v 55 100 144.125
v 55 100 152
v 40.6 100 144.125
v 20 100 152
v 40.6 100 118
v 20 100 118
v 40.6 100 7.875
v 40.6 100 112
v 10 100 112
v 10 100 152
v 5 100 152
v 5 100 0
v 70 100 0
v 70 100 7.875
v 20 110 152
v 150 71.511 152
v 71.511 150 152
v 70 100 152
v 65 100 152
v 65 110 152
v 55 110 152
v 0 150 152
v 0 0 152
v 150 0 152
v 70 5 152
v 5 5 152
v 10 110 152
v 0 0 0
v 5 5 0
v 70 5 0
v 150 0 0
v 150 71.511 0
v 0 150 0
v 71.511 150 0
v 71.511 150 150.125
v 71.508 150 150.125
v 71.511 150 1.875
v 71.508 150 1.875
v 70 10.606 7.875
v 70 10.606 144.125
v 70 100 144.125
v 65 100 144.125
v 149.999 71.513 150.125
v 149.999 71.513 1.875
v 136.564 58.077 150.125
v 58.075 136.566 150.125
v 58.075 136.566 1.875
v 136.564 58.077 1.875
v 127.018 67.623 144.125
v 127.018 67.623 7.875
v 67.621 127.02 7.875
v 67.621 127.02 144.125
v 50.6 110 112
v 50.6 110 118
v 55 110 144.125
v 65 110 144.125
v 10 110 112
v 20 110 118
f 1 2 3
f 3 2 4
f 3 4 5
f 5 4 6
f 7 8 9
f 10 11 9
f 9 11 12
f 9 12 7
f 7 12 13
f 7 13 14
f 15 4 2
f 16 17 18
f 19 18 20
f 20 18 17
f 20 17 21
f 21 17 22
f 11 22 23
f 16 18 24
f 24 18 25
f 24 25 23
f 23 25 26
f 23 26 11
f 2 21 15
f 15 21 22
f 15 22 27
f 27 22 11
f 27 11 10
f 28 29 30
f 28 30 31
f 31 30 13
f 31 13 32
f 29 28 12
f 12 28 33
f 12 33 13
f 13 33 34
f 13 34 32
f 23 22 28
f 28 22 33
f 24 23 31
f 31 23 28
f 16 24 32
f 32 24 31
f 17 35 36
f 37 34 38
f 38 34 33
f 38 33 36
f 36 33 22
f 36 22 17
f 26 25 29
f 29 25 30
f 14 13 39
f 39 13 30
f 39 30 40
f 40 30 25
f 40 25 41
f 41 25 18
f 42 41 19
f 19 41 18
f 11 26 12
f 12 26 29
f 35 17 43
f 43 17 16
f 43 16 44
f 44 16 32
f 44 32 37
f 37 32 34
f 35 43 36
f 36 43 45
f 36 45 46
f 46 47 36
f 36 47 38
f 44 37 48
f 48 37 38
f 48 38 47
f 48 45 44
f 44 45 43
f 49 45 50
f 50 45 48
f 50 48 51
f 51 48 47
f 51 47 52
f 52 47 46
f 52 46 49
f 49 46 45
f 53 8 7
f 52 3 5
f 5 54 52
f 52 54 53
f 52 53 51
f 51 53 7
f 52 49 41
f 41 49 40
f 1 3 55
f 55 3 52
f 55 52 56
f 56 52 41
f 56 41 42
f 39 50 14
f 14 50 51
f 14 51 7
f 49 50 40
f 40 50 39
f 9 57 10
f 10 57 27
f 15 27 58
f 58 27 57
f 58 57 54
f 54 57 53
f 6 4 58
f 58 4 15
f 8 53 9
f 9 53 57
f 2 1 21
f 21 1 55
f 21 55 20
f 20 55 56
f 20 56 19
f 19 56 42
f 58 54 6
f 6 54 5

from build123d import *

# Parameters (mm, degrees)
SKETCH1_W           = 150
SKETCH1_H           = 150
SKETCH1_W_2         = 65
SKETCH1_H_2         = 95
BOSS_EXTRUDE2_DEPTH = 152
CHAMFER1_SIZE       = 78.48885271
SKETCH4_W           = 148.25
SKETCH4_H           = 111
CUT_EXTRUDE5_DEPTH  = 19
SKETCH5_W           = 136.25
SKETCH5_H           = 84
CUT_EXTRUDE6_DEPTH  = 81
SKETCH6_W           = 10
SKETCH6_H           = 10
CUT_EXTRUDE7_DEPTH  = 40
SKETCH7_W           = 10
SKETCH7_H           = 10
CUT_EXTRUDE8_DEPTH  = 40
SKETCH10_W          = 40
SKETCH10_H          = 6
CUT_EXTRUDE10_DEPTH = 10


with BuildPart() as part:
    # Sketch1 → Boss-Extrude2 (new body)
    with BuildSketch(Plane.XY):
        with Locations((75, 75)):
            Rectangle(SKETCH1_W, SKETCH1_H)
        with Locations((37.5, 52.5)):
            Rectangle(SKETCH1_W_2, SKETCH1_H_2, mode=Mode.SUBTRACT)
    extrude(amount=BOSS_EXTRUDE2_DEPTH)

    # Chamfer1
    chamfer1_edges = [part.edges().sort_by_distance(p)[0] for p in [
        (150, 150, 76),
    ]]
    chamfer(chamfer1_edges, length=CHAMFER1_SIZE)

    # Sketch4 → Cut-Extrude5 (cut)
    with BuildSketch(Plane(origin=(110.755573645, 110.755573645, 0), x_dir=(0, 0, -1), z_dir=(0.7071067811865489, 0.7071067811865461, 0))):
        with Locations((-76, 0.001948307)):
            Rectangle(SKETCH4_W, SKETCH4_H)
    extrude(amount=-CUT_EXTRUDE5_DEPTH, mode=Mode.SUBTRACT)

    # Sketch5 → Cut-Extrude6 (cut)
    with BuildSketch(Plane(origin=(97.320544802, 97.320544802, 0), x_dir=(0, 0, -1), z_dir=(0.707106781186549, 0.707106781186546, 0))):
        with Locations((-76, 0.001948307)):
            Rectangle(SKETCH5_W, SKETCH5_H)
    extrude(amount=-CUT_EXTRUDE6_DEPTH, mode=Mode.SUBTRACT)

    # Sketch6 → Cut-Extrude7 (cut)
    with BuildSketch(Plane.XY.offset(152)):
        with Locations((15, 105)):
            Rectangle(SKETCH6_W, SKETCH6_H)
    extrude(amount=-CUT_EXTRUDE7_DEPTH, mode=Mode.SUBTRACT)

    # Sketch7 → Cut-Extrude8 (cut)
    with BuildSketch(Plane.XY.offset(152)):
        with Locations((60, 105)):
            Rectangle(SKETCH7_W, SKETCH7_H)
    extrude(amount=-CUT_EXTRUDE8_DEPTH, mode=Mode.SUBTRACT)

    # Sketch10 → Cut-Extrude10 (cut)
    with BuildSketch(Plane.XZ.offset(-100)):
        with Locations((40, 115)):
            Rectangle(SKETCH10_W, SKETCH10_H)
    extrude(amount=-CUT_EXTRUDE10_DEPTH, mode=Mode.SUBTRACT)


solid = part.part
